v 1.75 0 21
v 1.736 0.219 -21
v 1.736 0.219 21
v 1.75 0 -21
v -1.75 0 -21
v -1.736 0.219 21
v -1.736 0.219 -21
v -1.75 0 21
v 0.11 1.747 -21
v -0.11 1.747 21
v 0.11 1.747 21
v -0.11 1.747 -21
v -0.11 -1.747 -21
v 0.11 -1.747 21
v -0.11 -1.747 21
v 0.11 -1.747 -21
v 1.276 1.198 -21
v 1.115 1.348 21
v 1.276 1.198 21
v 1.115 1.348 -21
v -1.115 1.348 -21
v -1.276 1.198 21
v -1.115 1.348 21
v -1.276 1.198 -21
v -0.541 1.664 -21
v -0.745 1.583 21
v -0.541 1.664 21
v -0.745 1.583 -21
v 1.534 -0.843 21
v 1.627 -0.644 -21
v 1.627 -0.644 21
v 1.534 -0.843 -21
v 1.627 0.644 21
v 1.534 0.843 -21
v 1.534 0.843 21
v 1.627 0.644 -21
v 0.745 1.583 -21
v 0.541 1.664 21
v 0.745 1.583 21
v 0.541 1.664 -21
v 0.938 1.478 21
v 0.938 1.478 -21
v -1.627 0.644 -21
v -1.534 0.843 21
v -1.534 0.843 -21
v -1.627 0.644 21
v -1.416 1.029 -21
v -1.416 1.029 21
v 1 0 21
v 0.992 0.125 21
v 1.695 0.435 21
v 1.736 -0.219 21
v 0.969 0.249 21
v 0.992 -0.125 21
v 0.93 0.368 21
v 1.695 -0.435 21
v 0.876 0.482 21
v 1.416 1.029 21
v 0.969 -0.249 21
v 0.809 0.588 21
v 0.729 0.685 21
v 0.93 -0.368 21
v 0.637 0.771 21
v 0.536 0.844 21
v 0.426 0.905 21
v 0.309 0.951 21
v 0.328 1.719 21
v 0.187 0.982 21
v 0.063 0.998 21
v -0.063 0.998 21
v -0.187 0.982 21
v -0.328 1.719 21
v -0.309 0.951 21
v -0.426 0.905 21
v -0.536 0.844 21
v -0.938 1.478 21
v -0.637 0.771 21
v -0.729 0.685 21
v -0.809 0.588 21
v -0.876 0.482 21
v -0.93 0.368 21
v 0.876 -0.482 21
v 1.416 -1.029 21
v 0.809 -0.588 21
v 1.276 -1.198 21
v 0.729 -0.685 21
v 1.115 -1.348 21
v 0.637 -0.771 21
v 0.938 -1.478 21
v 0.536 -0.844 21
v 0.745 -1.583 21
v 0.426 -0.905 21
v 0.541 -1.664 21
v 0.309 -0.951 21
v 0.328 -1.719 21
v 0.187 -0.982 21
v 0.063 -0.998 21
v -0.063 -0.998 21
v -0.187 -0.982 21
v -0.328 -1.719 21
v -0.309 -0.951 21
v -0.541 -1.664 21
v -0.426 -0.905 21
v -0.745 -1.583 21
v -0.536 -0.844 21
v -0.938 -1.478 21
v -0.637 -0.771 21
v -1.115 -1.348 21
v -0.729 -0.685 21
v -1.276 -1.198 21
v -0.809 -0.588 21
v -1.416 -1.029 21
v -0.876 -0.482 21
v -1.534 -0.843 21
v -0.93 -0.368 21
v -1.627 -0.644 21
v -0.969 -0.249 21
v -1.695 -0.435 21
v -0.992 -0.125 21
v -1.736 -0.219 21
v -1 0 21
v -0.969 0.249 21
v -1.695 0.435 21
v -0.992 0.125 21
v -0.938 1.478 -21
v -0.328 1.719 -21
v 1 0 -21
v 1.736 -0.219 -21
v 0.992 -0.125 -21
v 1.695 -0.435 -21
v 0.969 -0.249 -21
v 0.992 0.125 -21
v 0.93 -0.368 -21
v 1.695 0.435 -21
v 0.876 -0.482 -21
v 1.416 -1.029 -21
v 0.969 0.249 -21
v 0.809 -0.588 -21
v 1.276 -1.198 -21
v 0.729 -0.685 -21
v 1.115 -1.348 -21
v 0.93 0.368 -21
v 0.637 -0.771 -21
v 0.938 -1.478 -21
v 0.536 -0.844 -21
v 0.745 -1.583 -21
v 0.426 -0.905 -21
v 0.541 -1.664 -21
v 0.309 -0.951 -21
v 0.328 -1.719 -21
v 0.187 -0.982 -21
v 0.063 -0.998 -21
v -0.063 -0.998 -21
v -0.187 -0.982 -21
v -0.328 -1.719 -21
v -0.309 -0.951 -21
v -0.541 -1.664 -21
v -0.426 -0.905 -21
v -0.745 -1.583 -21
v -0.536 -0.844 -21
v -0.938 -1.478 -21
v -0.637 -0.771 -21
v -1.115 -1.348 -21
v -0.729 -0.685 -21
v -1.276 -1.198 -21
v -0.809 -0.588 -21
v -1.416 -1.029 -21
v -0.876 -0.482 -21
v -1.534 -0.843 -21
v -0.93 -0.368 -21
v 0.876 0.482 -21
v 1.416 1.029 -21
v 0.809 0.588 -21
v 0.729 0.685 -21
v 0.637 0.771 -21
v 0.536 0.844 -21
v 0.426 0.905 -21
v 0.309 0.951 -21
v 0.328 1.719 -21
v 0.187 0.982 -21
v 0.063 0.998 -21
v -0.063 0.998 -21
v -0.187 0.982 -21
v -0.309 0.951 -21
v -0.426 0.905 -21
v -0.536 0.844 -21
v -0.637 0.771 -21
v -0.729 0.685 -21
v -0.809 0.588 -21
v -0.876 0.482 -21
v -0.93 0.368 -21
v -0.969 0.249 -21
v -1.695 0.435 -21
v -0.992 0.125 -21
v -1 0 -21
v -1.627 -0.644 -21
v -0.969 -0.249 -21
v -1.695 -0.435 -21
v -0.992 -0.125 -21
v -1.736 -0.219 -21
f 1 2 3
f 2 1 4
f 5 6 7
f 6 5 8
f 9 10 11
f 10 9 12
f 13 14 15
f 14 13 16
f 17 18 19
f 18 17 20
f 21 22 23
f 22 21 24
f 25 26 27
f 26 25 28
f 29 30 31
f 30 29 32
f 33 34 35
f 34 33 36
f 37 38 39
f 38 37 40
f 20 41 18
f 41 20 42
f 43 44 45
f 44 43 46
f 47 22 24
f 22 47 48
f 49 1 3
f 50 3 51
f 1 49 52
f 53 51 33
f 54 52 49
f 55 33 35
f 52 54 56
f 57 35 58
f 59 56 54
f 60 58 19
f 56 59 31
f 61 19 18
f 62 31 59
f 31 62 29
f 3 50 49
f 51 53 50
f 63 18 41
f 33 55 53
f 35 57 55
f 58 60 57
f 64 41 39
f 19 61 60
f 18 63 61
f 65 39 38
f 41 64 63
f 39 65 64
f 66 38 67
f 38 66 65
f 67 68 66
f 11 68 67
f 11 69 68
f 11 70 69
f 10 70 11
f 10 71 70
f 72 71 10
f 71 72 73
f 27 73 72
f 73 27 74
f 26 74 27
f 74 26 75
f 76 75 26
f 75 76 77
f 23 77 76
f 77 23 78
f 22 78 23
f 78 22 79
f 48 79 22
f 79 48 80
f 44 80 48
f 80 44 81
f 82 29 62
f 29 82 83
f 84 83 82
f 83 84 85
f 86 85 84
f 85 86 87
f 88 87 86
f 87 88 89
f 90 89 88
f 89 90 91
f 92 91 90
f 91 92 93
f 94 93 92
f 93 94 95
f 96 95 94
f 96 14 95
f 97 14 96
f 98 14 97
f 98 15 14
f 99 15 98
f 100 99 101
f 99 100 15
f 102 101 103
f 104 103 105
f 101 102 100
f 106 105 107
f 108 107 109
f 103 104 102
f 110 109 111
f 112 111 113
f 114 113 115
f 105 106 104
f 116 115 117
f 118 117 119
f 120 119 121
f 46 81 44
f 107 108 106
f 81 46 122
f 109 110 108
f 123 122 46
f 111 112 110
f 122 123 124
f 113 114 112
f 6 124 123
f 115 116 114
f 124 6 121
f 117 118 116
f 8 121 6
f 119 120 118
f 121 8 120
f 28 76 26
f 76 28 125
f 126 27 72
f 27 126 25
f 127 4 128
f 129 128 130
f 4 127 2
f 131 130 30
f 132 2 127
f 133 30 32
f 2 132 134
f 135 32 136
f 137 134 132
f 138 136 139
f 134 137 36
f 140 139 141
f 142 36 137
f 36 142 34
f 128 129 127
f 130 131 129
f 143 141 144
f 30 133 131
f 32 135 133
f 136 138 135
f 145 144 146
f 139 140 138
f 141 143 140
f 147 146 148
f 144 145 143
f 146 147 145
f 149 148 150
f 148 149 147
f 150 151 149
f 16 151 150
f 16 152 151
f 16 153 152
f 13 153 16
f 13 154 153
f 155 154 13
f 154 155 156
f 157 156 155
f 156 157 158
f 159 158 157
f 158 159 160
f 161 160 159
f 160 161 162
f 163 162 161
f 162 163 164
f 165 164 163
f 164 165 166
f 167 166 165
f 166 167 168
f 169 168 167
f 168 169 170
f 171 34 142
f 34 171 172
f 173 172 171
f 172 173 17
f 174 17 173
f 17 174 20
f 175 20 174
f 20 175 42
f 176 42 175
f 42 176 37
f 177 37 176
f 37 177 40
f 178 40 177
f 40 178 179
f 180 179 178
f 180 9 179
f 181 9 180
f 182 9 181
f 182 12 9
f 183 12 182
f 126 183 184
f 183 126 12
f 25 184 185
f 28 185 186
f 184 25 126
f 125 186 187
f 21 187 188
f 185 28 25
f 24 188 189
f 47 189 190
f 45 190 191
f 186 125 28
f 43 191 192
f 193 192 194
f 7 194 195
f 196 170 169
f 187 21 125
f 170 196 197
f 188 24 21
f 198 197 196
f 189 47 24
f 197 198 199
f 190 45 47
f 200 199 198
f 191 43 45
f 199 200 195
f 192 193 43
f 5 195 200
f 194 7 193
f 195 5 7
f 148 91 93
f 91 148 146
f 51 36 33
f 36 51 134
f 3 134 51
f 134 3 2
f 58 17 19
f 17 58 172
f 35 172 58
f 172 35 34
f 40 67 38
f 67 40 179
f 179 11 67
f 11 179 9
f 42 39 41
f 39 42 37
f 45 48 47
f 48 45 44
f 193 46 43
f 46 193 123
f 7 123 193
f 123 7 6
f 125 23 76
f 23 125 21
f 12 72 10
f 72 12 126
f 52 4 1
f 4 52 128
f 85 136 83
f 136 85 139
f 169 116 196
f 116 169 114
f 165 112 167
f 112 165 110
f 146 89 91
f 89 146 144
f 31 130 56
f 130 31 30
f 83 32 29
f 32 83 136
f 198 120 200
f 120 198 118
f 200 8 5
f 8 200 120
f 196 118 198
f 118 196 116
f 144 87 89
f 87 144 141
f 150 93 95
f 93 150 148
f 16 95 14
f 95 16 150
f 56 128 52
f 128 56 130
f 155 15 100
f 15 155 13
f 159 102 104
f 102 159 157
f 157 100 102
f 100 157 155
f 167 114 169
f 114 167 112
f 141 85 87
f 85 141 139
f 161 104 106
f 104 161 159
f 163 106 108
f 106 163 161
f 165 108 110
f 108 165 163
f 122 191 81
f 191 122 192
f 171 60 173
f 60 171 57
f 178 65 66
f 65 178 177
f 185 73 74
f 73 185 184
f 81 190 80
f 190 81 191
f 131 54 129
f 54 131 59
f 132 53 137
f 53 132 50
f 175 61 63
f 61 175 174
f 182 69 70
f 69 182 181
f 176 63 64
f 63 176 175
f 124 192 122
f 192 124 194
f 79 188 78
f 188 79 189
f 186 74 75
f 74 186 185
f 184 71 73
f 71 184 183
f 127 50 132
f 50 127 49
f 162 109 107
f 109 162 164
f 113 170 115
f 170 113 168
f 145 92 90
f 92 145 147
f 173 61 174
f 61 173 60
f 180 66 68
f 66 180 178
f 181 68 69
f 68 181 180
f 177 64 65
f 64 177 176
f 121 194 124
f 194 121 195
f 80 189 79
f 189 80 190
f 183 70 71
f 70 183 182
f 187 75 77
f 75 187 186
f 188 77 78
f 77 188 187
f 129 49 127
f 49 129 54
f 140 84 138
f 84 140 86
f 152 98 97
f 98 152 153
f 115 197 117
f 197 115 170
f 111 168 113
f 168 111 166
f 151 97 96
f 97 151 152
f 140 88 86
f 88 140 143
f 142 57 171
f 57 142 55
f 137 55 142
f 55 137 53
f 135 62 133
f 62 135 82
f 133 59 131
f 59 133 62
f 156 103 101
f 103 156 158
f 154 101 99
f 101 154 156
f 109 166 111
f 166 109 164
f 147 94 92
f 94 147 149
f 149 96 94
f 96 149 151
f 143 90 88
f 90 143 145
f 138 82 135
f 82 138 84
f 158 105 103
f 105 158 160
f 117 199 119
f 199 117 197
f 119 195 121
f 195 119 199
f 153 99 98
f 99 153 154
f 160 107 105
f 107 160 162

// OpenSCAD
$fn = 50;


difference() {
	union() {
		translate(v = [0, 0, -21.0000000000]) {
			cylinder(h = 42, r = 1.7500000000);
		}
	}
	union() {
		translate(v = [0, 0, -100.0000000000]) {
			cylinder(h = 200, r = 1.0000000000);
		}
	}
}
